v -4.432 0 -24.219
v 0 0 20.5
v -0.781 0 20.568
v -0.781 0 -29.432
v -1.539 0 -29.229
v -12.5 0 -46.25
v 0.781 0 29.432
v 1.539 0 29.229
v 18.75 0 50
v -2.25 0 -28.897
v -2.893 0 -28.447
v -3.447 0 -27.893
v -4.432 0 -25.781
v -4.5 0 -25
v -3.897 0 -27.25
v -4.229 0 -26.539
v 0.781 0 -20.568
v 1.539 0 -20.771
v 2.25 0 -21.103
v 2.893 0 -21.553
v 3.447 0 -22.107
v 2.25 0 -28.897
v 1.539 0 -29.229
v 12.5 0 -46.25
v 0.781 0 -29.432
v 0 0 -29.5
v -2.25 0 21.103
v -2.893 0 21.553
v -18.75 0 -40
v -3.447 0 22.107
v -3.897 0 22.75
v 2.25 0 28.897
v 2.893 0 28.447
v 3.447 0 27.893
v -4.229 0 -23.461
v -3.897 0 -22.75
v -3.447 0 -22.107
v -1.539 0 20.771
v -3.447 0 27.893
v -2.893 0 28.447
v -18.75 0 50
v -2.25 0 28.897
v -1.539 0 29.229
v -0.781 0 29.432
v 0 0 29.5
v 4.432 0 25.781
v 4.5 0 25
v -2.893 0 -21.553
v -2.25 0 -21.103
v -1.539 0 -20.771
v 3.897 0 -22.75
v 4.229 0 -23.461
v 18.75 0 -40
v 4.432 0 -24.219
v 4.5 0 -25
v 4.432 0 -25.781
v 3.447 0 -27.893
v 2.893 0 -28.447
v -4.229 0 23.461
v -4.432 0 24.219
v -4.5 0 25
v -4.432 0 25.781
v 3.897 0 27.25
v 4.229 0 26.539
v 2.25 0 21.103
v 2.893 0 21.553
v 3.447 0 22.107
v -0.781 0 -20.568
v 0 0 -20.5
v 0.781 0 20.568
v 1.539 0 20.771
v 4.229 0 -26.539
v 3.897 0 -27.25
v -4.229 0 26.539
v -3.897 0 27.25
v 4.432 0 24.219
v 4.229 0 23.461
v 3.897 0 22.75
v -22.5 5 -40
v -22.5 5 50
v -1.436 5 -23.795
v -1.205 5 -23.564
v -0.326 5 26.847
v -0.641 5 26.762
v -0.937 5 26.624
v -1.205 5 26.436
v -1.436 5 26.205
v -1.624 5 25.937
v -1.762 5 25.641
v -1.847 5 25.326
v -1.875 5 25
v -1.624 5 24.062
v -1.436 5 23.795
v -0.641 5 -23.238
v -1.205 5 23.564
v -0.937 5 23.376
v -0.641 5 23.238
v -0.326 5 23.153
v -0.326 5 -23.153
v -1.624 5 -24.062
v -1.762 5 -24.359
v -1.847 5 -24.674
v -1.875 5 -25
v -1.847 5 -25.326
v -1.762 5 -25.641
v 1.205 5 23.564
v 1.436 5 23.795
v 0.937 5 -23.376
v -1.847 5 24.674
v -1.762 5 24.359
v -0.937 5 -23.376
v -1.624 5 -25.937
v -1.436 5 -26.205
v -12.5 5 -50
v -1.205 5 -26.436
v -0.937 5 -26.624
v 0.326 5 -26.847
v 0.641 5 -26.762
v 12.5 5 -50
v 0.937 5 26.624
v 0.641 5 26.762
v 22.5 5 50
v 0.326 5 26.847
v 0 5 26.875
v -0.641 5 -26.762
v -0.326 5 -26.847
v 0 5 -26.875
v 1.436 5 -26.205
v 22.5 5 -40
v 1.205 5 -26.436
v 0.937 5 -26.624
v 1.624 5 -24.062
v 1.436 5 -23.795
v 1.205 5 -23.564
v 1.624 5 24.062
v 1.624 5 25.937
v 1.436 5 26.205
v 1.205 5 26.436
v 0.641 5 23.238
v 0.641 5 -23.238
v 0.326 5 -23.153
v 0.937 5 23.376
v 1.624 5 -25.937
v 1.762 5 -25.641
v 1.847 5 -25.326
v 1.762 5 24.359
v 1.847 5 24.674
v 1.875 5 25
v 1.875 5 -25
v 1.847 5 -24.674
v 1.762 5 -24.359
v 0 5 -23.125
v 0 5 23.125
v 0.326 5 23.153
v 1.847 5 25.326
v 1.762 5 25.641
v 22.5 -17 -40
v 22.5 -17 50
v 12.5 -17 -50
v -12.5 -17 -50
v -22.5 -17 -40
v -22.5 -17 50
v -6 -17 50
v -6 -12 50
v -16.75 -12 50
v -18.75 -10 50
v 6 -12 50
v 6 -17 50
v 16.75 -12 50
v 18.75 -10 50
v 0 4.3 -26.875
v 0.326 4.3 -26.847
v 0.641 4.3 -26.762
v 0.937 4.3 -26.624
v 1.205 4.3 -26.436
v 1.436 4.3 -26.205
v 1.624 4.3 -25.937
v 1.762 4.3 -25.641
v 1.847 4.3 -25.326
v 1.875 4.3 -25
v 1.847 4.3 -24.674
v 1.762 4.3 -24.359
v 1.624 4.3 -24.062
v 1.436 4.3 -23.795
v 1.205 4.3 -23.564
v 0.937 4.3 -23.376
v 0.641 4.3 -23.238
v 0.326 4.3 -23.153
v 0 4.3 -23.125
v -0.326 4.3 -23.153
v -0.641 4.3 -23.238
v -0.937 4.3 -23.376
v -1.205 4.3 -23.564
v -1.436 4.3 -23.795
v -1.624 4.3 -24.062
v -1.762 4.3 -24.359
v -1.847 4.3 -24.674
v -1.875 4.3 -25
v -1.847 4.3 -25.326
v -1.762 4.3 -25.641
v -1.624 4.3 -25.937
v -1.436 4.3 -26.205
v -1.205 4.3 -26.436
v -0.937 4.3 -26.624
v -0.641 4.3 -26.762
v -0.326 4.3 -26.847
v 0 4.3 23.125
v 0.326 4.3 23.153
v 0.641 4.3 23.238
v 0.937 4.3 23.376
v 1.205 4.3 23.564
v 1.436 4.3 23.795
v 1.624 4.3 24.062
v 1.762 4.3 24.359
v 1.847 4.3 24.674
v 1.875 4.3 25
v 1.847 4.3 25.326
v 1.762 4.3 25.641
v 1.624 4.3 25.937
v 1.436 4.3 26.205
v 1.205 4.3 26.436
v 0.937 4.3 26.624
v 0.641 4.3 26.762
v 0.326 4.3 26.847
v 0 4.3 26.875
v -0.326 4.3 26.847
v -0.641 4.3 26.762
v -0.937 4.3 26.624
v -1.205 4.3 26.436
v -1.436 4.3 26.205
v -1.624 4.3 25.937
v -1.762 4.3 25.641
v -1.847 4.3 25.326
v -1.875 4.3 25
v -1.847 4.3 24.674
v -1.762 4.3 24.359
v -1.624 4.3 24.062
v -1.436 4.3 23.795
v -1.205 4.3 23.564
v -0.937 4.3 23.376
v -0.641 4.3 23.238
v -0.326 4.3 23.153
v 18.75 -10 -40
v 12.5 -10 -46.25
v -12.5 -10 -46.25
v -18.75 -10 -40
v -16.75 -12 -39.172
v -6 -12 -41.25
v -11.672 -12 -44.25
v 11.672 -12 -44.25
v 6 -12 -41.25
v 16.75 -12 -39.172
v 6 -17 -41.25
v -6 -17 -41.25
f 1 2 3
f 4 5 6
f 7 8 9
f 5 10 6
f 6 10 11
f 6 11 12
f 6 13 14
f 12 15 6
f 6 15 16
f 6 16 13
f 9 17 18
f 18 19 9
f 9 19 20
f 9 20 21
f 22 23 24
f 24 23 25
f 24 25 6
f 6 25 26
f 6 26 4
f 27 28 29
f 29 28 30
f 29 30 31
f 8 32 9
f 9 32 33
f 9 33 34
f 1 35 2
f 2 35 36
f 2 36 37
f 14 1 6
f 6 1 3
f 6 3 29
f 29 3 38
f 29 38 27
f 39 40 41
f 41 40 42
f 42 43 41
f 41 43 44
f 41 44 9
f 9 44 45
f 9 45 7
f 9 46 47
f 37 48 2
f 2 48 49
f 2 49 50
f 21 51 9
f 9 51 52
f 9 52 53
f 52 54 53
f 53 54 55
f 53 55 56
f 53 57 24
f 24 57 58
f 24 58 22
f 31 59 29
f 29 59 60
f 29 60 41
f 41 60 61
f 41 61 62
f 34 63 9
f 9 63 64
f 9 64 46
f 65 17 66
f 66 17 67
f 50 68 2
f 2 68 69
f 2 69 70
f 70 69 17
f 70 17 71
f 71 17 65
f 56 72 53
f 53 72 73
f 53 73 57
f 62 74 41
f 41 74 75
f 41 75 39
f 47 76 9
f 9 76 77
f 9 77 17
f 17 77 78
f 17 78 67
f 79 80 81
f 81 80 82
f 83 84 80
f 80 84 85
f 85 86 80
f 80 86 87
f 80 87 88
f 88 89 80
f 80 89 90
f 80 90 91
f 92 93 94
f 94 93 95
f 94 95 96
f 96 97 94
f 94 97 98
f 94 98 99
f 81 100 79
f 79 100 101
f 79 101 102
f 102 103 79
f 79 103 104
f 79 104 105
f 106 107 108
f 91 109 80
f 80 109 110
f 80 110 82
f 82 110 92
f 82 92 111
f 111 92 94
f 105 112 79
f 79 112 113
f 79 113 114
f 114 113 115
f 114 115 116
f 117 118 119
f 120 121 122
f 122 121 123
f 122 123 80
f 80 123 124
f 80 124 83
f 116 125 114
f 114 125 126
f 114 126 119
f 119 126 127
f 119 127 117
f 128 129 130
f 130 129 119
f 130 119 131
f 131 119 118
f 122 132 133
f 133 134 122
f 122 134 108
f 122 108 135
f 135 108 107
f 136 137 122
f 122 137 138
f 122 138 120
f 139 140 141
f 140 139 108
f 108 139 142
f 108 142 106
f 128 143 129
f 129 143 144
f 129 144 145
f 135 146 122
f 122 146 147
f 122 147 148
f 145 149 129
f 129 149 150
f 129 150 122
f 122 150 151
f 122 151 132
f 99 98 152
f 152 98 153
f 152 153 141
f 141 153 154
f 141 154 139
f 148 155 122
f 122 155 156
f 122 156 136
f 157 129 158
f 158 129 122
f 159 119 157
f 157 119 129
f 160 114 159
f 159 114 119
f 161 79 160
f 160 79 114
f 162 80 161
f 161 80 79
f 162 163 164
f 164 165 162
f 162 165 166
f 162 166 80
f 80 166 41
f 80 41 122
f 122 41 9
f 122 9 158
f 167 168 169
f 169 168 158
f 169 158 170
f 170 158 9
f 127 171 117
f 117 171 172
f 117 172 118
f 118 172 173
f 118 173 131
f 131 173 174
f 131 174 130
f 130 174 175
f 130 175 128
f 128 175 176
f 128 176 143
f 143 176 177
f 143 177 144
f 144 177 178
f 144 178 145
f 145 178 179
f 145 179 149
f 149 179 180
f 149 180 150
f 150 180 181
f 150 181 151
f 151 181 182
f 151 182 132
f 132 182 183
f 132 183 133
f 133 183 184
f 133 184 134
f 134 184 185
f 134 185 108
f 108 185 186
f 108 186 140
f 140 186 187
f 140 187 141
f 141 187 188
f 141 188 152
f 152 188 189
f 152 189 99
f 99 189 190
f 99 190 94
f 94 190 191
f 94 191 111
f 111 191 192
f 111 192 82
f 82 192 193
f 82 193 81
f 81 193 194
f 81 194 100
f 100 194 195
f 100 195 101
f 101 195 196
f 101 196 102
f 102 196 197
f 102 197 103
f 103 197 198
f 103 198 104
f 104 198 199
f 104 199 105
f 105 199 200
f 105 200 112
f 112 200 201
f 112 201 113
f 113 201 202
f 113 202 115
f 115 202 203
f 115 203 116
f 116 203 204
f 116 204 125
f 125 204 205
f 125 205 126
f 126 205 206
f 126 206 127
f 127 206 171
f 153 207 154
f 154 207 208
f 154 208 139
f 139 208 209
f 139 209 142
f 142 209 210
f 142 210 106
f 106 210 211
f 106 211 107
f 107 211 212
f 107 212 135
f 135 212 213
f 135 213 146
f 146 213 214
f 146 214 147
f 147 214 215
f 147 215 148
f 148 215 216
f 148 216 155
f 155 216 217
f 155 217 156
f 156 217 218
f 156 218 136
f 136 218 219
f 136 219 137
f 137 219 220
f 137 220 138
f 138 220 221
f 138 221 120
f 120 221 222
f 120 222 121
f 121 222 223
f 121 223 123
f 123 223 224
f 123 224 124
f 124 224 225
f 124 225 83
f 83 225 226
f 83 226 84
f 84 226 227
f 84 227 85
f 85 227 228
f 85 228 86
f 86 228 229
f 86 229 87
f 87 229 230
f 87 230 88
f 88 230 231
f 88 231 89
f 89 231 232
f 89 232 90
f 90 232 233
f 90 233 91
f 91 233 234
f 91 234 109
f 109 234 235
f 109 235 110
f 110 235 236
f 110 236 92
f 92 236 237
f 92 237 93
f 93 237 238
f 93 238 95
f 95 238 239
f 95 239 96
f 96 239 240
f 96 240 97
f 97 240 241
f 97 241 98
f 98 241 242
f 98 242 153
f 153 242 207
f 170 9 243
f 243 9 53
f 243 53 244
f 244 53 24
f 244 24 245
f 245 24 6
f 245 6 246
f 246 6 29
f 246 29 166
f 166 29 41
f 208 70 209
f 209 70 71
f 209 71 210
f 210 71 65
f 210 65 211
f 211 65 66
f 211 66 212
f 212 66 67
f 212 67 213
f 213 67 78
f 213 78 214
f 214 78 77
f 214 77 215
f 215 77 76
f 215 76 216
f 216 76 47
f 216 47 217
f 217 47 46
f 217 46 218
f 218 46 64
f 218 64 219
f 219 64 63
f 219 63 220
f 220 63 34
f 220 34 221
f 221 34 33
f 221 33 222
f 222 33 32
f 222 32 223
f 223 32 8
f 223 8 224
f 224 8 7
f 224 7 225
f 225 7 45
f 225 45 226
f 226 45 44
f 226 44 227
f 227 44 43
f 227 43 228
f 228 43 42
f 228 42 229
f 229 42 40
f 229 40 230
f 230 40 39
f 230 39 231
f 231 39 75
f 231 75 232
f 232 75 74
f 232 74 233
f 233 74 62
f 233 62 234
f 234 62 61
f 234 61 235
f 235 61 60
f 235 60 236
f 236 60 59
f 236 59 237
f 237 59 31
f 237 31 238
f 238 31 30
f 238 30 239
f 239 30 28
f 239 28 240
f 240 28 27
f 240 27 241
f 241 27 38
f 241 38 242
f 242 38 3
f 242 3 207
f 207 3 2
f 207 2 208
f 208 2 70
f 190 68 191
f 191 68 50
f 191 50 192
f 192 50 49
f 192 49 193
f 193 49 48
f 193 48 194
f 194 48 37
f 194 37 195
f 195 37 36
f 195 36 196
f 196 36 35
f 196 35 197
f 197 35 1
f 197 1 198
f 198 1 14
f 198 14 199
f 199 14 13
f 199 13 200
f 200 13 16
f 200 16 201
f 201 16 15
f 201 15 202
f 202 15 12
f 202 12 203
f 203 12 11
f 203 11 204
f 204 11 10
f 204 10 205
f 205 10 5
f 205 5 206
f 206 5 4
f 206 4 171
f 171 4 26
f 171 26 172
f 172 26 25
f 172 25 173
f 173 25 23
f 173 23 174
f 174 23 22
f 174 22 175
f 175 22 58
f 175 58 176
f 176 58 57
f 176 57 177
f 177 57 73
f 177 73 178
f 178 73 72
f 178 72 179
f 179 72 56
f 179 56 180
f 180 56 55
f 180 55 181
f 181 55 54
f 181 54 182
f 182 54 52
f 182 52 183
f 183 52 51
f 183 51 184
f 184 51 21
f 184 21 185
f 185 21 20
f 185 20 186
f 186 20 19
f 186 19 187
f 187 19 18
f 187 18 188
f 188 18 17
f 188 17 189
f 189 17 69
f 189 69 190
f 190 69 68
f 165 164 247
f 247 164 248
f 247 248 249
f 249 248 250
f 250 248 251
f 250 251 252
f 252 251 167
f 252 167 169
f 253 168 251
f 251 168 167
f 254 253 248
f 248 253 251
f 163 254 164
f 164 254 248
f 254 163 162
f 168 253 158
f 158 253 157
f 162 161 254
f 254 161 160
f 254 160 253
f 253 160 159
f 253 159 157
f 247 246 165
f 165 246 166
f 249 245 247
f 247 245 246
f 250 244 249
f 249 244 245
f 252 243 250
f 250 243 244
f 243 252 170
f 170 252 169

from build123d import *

# Parameters (mm, degrees)
SKETCH1_R           = 1.875
BOSS_EXTRUDE1_DEPTH = 5
BOSS_EXTRUDE2_DEPTH = 12
BOSS_EXTRUDE3_DEPTH = 5
CHAMFER1_SIZE       = 2


with BuildPart() as part:
    # Sketch1 → Boss-Extrude1 (new body)
    with BuildSketch(Plane(origin=(0, 0, 0), x_dir=(1, 0, 0), z_dir=(0, 1, 0))):
        Polygon((-12.5, 50), (12.5, 50), (22.5, 40), (22.5, -50), (-22.5, -50), (-22.5, 40), align=None)
        with Locations((0, 25)):
            Circle(SKETCH1_R, mode=Mode.SUBTRACT)
        with Locations((0, -25)):
            Circle(SKETCH1_R, mode=Mode.SUBTRACT)
    extrude(amount=BOSS_EXTRUDE1_DEPTH)

    # Sketch3 → Boss-Extrude2 (add)
    with BuildSketch(Plane.XZ):
        Polygon((-22.5, 50), (-18.75, 50), (-18.75, -40), (-12.5, -46.25), (12.5, -46.25), (18.75, -40), (18.75, 50), (22.5, 50), (22.5, -40), (12.5, -50), (-12.5, -50), (-22.5, -40), align=None)
    extrude(amount=BOSS_EXTRUDE2_DEPTH)

    # Sketch4 → Cut-Revolve1 (revolve, cut)
    with BuildSketch(Plane(origin=(0, 0, 0), x_dir=(0, 0, -1), z_dir=(1, 0, 0))):
        Polygon((-26.875, 5), (-26.875, 4.3), (-29.5, 0), (-25.875, 0), (-25.875, 5), align=None)
    cut_revolve1 = revolve(axis=Axis((0, 5, 25), (0, -1, 0)), mode=Mode.SUBTRACT)

    # Mirror1: Cut-Revolve1 across plane
    add(cut_revolve1.mirror(Plane.XY), mode=Mode.SUBTRACT)

    # Sketch5 → Boss-Extrude3 (add)
    with BuildSketch(Plane.XZ.offset(12)):
        Polygon((-22.5, -40), (-12.5, -50), (12.5, -50), (22.5, -40), (22.5, 50), (6, 50), (6, -41.25), (-6, -41.25), (-6, 50), (-22.5, 50), align=None)
    extrude(amount=BOSS_EXTRUDE3_DEPTH)

    # Chamfer1
    chamfer1_edges = [part.edges().sort_by_distance(p)[0] for p in [
        (18.75, -12, 5),
        (15.625, -12, -43.125),
        (0, -12, -46.25),
        (-15.625, -12, -43.125),
        (-18.75, -12, 5),
    ]]
    chamfer(chamfer1_edges, length=CHAMFER1_SIZE)


solid = part.part
